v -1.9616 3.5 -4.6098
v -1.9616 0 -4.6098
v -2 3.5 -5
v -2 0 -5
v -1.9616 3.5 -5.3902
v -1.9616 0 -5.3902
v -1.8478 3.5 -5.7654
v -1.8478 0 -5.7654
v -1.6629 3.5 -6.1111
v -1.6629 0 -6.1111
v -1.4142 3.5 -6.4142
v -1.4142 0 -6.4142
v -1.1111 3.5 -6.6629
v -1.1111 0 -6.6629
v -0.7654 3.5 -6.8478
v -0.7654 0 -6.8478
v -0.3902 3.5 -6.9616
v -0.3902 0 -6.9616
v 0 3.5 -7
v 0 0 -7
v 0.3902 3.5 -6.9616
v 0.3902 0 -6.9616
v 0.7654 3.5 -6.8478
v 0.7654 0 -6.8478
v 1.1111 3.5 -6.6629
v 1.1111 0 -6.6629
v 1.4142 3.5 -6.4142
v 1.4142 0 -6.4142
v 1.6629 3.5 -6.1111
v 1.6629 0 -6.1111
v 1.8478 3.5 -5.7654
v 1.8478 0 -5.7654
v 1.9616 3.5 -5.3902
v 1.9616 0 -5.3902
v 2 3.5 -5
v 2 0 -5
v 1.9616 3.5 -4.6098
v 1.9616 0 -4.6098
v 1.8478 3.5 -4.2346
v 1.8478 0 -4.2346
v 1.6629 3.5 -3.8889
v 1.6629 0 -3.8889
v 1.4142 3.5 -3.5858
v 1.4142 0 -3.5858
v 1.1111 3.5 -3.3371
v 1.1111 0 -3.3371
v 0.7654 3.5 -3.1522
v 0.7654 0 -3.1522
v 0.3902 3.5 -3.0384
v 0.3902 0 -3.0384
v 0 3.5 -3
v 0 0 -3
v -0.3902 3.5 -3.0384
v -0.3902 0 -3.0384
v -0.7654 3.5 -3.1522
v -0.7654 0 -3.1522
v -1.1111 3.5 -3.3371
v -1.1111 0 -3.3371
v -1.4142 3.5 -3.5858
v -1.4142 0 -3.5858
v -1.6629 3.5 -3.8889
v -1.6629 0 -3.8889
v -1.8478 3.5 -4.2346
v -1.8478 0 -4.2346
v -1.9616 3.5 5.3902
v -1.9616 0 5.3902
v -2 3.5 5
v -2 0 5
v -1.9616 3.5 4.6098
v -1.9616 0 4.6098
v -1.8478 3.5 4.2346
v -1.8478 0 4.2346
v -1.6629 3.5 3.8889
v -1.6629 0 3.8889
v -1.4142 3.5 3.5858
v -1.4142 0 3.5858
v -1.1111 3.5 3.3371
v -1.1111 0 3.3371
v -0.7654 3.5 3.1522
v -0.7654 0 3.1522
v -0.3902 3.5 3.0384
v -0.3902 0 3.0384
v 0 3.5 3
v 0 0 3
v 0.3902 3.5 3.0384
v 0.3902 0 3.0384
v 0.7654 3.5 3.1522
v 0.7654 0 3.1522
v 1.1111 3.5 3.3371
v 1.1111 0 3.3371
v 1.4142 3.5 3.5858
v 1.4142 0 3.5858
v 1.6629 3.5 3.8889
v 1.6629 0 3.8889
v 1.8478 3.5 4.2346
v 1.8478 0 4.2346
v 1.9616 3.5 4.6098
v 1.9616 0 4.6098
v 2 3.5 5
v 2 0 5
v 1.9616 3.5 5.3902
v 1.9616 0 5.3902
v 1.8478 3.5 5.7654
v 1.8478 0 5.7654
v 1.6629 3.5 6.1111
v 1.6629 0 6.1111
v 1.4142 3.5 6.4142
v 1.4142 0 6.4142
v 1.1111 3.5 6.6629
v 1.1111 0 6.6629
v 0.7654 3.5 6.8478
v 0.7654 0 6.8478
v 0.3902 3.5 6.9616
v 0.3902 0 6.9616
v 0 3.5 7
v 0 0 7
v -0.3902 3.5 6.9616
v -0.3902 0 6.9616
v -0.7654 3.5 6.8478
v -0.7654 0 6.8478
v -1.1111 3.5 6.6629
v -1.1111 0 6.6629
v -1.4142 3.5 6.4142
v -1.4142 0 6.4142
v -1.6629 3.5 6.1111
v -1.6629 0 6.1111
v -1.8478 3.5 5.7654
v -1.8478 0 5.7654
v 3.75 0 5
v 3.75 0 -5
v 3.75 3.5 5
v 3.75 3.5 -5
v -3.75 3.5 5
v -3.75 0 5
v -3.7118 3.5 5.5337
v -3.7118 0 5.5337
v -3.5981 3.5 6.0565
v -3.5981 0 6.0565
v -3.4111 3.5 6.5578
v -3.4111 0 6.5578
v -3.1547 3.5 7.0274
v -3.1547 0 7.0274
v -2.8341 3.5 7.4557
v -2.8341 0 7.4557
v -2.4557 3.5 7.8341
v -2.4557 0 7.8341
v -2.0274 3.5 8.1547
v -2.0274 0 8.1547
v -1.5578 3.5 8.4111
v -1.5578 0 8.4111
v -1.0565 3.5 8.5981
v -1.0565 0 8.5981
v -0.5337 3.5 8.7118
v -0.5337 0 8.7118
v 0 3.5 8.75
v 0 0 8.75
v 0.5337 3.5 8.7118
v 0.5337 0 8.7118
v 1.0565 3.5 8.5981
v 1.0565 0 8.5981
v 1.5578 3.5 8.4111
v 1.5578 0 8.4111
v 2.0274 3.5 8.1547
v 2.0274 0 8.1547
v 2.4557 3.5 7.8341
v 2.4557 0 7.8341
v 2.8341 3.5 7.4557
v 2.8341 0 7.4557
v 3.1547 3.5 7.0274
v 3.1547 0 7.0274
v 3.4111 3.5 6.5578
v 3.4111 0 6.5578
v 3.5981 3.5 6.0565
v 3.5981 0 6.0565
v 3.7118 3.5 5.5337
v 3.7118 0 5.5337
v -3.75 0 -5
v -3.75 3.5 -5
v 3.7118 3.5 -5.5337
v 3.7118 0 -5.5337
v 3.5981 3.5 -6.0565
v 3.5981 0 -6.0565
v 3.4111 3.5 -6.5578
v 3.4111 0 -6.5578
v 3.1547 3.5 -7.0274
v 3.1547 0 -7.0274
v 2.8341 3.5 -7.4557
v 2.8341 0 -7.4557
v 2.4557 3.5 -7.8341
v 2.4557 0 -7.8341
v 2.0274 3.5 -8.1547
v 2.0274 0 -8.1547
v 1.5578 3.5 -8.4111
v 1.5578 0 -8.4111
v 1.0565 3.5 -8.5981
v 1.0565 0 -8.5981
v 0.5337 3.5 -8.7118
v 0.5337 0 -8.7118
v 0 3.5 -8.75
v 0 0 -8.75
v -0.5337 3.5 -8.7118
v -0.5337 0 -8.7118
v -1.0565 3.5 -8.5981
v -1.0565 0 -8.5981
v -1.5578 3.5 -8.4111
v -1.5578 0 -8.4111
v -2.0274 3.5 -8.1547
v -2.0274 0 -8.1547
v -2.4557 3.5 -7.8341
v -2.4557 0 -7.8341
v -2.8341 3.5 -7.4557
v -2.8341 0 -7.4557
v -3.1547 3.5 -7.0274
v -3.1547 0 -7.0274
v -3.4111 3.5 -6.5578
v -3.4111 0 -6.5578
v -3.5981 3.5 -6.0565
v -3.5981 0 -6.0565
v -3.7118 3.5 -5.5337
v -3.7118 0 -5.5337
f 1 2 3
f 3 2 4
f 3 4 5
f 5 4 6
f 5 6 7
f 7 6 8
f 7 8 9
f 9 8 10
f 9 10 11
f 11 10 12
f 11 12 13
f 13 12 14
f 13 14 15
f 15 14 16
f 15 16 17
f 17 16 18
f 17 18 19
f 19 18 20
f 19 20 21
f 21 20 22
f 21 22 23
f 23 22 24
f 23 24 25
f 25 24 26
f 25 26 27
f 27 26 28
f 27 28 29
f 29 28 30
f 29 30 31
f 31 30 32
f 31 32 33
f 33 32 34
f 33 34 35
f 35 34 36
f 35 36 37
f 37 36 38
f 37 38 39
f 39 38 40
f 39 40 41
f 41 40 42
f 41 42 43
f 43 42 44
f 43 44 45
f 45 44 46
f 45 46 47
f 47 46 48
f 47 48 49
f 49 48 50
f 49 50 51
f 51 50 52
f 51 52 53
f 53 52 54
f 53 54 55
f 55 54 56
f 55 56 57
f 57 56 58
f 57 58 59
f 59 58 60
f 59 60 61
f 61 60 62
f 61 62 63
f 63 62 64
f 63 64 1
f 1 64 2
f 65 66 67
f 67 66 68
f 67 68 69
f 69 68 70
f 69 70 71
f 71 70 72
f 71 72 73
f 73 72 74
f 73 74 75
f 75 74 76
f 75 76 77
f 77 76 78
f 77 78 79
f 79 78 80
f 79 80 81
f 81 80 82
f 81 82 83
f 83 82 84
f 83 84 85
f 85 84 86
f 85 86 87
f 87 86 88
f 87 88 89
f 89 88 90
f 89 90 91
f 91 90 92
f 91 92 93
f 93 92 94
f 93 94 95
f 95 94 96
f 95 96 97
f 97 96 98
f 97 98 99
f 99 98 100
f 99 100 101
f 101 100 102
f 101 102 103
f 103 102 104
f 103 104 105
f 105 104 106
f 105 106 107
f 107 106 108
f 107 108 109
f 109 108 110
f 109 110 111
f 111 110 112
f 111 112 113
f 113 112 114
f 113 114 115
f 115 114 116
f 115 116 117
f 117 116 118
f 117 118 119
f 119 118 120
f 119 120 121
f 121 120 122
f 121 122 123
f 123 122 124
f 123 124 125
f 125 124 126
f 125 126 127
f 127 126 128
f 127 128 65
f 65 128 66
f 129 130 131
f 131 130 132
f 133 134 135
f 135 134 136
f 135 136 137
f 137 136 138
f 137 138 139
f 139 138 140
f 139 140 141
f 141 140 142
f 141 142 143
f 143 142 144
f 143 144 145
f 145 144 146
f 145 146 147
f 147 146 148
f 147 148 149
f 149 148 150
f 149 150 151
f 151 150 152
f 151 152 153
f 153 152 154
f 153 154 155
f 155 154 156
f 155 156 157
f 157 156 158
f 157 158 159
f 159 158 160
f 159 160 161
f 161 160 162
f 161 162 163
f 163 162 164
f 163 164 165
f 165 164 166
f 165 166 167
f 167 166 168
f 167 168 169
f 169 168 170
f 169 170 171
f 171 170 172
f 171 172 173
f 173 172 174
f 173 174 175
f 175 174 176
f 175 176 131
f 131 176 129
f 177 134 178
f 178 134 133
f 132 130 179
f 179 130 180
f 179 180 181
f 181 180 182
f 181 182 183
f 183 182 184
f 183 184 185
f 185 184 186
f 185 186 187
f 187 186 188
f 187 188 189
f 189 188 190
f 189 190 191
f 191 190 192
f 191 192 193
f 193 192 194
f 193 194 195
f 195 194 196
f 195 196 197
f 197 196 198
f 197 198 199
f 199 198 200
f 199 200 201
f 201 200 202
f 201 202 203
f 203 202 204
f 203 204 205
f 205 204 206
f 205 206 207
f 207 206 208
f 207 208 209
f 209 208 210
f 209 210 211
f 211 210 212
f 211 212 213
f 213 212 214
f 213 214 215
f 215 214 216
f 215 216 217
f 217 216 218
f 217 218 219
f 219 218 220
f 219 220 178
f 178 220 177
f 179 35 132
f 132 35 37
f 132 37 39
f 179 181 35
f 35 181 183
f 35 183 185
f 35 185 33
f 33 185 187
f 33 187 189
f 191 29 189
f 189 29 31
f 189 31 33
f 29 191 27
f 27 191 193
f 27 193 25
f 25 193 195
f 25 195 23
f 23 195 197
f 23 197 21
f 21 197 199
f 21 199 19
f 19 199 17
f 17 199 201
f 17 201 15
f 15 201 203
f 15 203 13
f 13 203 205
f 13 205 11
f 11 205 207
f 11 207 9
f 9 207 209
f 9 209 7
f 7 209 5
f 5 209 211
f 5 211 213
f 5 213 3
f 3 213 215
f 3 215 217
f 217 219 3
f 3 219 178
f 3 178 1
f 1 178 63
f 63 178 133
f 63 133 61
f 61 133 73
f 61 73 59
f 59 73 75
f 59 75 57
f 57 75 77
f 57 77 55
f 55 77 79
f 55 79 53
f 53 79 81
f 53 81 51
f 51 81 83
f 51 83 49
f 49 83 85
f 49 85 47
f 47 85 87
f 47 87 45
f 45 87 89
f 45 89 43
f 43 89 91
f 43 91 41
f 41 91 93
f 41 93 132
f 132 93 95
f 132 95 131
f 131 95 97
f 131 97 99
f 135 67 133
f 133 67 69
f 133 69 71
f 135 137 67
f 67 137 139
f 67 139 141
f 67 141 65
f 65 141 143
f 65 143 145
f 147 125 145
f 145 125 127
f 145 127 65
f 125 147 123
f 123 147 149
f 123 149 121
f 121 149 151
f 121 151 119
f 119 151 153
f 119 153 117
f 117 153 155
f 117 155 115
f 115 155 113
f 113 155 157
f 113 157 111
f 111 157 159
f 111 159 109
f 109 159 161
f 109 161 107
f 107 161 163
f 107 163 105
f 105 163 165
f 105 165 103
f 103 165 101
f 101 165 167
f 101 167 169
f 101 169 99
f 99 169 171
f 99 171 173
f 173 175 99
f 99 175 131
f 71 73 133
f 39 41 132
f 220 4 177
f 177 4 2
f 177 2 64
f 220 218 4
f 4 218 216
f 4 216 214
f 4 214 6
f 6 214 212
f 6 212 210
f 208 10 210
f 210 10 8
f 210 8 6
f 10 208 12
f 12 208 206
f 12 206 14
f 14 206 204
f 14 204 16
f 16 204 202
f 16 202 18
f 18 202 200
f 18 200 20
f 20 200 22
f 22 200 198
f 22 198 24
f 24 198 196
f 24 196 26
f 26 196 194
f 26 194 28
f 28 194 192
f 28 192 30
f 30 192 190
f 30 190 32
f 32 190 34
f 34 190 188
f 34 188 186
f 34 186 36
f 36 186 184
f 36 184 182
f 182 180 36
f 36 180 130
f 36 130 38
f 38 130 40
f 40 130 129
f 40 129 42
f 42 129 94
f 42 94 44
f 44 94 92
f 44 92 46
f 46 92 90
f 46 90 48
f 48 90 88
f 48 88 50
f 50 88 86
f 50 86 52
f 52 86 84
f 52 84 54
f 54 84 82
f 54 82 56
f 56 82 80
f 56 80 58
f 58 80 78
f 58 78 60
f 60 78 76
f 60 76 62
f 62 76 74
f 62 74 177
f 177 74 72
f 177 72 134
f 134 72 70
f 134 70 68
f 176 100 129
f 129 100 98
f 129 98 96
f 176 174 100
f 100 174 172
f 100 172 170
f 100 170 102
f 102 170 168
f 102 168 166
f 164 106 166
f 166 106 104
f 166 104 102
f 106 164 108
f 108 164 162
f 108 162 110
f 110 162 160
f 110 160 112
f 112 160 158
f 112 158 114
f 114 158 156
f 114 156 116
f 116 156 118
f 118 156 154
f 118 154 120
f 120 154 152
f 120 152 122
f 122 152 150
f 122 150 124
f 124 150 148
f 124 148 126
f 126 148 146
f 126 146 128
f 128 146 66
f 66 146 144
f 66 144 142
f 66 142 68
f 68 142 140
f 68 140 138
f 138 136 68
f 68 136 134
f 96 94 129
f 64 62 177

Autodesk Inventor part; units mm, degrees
ref_plane "YZ Plane" through (0, 0, 0) normal (1, 0, 0) x (0, 1, 0)
ref_plane "XZ Plane" through (0, 0, 0) normal (0, 1, 0) x (-1, 0, 0)
ref_plane "XY Plane" through (0, 0, 0) normal (0, 0, 1) x (1, 0, 0)
sketch "Sketch1" plane through (0, 0, 0) normal (0, 1, 0) x (-1, 0, 0)
  line L0 (0, 5) -> (0, -5)
  circle A0 centre (0, 5) radius 2
  circle A1 centre (0, -5) radius 2
  line L1 (0, 5) -> (0, -5) construction
  line L2 (-3.75, 5) -> (-3.75, -5)
  line L3 (3.75, -5) -> (3.75, 5)
  arc A2 (3.75, 5) -> (-3.75, 5) centre (0, 5) ccw
  arc A3 (-3.75, -5) -> (3.75, -5) centre (0, -5) ccw
  point P0 (0, 0)
  point P1 (0, 0)
  dimension "d0" = 10
  dimension "d1" = 4
  dimension "d2" = 4
  dimension "d3" = 7.5
extrude "Extrusion1" add sketch "Sketch1" along normal blind 3.5
properties part number "piulita"
